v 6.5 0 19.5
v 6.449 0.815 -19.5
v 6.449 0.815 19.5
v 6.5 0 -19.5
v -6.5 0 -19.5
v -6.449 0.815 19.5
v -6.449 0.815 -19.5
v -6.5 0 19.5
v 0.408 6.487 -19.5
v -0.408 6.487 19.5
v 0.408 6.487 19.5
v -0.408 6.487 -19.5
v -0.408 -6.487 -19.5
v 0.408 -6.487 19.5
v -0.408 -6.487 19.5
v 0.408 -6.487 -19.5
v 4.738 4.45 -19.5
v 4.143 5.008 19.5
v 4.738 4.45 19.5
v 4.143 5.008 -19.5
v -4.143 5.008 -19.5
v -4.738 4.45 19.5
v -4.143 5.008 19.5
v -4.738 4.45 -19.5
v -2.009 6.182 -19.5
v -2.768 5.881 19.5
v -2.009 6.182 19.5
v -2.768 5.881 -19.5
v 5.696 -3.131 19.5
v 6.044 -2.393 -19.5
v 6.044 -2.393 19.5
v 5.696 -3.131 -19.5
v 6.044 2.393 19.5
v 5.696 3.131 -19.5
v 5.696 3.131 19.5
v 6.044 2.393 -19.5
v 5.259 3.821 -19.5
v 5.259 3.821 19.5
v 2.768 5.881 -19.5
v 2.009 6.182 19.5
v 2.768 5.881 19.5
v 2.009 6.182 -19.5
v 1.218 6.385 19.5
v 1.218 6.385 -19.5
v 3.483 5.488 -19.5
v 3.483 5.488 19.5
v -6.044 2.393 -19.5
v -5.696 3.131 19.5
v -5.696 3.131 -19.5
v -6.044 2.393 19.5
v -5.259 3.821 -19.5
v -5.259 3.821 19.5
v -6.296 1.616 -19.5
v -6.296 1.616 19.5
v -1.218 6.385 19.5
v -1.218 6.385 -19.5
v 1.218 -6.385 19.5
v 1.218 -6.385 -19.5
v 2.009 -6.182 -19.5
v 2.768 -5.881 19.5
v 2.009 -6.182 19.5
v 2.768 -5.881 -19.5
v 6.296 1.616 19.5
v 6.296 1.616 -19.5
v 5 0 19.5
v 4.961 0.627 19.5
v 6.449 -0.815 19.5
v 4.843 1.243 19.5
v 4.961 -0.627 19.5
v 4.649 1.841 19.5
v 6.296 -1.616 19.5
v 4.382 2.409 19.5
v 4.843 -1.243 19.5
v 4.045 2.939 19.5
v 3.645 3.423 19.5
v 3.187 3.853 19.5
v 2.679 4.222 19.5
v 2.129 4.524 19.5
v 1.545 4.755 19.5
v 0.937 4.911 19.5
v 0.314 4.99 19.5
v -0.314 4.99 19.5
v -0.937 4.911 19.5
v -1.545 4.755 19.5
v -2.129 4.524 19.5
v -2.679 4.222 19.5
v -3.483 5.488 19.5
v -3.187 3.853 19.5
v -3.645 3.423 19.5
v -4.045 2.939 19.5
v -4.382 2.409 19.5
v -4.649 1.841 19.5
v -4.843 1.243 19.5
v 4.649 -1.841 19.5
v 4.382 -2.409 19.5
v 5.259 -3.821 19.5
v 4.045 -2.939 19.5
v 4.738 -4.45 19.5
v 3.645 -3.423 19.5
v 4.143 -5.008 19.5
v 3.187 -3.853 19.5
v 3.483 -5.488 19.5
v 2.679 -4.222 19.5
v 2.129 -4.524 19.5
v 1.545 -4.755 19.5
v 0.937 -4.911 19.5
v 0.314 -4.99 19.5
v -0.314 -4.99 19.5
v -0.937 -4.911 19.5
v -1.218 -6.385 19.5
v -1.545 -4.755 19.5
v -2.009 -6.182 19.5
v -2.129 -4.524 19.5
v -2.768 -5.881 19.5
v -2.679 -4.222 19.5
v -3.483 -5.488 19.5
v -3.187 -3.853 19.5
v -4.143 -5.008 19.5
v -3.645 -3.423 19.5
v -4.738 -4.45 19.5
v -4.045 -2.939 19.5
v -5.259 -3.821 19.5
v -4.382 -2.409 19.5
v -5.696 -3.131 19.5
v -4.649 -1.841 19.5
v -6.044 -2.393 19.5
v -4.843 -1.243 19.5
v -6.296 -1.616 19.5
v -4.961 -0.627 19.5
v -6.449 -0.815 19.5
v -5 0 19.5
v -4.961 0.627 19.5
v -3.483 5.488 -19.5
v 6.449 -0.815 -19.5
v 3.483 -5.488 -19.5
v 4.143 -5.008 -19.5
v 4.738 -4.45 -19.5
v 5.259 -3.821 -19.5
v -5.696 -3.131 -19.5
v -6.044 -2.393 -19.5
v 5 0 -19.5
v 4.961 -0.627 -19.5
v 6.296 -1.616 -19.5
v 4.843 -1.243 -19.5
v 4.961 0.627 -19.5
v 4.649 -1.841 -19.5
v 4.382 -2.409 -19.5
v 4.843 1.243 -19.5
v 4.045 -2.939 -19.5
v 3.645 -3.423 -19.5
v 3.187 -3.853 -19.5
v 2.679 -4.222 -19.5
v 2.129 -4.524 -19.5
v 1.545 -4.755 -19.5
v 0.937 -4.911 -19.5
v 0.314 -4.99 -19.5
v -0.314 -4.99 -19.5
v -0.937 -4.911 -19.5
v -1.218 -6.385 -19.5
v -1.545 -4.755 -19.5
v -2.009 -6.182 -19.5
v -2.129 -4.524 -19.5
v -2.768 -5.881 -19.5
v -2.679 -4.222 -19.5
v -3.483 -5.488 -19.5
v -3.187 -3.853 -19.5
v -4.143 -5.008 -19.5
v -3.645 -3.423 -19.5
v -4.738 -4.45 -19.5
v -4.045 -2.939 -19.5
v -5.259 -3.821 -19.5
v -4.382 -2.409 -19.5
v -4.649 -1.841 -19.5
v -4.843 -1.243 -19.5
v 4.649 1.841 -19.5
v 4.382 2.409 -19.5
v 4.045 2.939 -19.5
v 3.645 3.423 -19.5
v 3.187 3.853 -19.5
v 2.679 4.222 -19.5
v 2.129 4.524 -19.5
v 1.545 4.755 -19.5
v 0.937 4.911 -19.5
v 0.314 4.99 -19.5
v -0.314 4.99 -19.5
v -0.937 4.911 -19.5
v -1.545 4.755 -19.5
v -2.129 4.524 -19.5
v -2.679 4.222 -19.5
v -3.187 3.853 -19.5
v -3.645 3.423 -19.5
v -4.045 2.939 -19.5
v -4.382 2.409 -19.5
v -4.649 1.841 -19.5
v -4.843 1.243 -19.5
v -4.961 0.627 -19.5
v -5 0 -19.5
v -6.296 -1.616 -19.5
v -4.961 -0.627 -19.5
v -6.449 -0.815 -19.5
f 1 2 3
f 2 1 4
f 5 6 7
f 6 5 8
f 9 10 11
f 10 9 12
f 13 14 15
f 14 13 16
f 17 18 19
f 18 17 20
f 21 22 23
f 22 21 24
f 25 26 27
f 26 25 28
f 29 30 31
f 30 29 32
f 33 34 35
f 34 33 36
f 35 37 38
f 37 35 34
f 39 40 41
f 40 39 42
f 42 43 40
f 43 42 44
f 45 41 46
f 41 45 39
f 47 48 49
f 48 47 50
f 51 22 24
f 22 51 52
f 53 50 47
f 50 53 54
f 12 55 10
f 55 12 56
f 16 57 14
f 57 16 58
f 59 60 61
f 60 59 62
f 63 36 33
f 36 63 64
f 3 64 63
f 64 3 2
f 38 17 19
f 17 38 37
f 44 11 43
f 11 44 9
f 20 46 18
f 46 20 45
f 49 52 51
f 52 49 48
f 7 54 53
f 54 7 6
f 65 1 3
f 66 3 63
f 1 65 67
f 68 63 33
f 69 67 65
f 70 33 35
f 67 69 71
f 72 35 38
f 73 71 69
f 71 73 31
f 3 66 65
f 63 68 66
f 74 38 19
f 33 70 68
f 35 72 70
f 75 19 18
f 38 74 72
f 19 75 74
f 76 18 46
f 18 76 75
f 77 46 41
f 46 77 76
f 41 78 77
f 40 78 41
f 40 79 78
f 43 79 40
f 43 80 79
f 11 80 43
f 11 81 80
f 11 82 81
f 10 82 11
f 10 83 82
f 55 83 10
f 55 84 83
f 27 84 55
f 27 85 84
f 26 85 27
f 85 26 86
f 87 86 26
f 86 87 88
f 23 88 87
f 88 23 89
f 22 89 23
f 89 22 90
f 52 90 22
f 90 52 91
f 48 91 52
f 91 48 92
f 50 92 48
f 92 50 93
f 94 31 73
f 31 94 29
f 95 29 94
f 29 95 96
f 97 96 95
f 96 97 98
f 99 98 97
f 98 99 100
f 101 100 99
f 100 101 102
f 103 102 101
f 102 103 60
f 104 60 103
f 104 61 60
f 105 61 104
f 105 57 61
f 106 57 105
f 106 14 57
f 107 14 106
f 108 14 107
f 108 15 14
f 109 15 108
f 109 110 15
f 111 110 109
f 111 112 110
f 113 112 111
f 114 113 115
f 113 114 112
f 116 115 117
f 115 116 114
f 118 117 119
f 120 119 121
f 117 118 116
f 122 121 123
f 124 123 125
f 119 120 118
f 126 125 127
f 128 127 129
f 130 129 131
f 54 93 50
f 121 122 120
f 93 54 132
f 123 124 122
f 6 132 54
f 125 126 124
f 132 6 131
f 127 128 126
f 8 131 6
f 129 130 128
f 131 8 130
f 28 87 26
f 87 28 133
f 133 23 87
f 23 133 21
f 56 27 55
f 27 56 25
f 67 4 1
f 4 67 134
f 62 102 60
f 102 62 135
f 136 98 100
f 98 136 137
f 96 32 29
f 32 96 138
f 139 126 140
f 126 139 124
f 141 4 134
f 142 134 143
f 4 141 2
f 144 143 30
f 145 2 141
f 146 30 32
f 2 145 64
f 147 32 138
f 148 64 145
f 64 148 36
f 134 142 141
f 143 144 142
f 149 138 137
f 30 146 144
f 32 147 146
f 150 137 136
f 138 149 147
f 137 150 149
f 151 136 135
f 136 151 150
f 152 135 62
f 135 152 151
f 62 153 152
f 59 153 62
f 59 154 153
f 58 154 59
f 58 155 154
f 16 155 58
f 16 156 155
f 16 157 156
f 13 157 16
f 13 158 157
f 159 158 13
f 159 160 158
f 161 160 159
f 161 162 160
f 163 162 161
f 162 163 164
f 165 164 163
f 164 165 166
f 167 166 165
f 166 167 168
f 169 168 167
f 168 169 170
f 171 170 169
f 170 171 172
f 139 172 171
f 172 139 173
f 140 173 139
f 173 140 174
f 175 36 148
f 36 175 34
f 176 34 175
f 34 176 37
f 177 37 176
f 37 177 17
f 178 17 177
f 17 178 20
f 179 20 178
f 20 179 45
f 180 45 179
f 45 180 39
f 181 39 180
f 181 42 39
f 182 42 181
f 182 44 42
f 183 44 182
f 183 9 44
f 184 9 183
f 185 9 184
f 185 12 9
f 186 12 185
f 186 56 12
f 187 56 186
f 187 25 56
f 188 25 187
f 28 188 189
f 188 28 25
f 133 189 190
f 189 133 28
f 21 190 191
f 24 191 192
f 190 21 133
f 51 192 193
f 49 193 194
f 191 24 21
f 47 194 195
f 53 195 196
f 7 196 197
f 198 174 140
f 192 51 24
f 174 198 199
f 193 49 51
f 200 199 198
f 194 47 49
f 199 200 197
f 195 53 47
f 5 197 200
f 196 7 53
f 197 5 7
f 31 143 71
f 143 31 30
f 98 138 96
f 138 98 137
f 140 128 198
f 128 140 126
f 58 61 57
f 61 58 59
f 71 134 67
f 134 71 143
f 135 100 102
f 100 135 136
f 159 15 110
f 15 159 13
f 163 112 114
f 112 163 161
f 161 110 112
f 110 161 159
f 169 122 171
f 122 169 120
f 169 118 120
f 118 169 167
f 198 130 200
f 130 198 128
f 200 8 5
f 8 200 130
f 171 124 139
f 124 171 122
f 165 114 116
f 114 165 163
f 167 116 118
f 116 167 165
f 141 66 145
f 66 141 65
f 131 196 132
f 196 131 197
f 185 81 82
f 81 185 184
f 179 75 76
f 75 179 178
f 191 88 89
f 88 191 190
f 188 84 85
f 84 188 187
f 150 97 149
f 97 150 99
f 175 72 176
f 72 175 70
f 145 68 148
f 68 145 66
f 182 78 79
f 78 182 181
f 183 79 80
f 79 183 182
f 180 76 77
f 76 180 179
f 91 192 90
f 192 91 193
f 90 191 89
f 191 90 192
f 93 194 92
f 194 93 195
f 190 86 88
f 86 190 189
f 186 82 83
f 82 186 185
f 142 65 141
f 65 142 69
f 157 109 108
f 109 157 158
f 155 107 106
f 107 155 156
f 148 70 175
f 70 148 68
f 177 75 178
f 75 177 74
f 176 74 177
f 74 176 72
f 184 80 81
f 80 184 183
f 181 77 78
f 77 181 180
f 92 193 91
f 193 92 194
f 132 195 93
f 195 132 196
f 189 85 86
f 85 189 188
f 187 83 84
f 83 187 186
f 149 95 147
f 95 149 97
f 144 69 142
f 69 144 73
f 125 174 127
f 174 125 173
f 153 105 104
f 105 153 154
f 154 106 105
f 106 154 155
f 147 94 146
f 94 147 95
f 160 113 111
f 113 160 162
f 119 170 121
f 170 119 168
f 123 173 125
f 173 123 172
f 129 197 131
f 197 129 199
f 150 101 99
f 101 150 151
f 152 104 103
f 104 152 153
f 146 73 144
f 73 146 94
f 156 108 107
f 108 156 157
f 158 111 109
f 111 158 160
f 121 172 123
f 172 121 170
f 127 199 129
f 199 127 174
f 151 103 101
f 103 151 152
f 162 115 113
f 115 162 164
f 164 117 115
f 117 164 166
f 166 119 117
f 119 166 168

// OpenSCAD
$fn = 50;


difference() {
	union() {
		translate(v = [0, 0, -19.5000000000]) {
			cylinder(h = 39, r = 6.5000000000);
		}
	}
	union() {
		translate(v = [0, 0, -100.0000000000]) {
			cylinder(h = 200, r = 5);
		}
	}
}
